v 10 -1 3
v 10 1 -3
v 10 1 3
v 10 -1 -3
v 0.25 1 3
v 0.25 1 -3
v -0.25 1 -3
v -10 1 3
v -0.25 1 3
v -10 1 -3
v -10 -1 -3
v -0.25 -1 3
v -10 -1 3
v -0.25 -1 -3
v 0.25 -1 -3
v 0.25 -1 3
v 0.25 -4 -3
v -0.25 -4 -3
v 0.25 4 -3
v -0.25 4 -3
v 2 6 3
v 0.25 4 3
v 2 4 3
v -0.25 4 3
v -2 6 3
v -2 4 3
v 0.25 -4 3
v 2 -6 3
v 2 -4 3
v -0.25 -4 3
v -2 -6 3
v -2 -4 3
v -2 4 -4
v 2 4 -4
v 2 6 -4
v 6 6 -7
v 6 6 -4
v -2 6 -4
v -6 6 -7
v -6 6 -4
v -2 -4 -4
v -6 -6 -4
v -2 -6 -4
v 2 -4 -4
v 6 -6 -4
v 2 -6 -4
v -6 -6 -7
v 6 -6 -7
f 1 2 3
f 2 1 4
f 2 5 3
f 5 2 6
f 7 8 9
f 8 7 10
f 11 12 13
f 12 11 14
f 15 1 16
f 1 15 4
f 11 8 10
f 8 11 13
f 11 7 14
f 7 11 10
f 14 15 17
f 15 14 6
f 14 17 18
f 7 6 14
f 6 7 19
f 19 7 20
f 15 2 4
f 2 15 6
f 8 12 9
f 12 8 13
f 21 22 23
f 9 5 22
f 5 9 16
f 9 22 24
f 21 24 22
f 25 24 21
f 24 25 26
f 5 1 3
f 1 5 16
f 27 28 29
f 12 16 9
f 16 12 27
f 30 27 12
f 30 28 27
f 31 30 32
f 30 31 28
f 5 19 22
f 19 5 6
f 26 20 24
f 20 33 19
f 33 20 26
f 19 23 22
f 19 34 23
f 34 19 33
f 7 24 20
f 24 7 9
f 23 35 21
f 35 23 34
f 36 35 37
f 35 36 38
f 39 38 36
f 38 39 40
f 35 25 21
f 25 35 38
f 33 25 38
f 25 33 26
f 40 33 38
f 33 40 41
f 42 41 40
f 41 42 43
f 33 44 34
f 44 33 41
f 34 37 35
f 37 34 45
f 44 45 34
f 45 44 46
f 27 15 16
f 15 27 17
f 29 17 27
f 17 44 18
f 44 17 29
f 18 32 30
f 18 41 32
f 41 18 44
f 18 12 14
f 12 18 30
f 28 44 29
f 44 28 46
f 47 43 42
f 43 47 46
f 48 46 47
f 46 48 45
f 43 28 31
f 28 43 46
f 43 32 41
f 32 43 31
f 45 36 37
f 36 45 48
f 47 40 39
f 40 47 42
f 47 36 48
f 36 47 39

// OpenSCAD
width = 6;
leverHeight = 2;
holderHeight = 3;

rotate([-90, 0, 0]){
	cube([20, 6, leverHeight], center=true);

	translate([0, 0, (leverHeight+holderHeight)/2])
		cube([0.5, width, holderHeight], center=true);
		
	translate([0, 0.5, leverHeight+holderHeight])
		cube([4, width+1, leverHeight], center=true);

	translate([0, 0, -(leverHeight+holderHeight)/2])
		cube([0.5, width, holderHeight], center=true);
		
	translate([0, 0.5, -(leverHeight+holderHeight)])
		cube([4, width+1, leverHeight], center=true);

	/*translate([0, 0.5, -3.9])	
		rotate([0, -90, 90])
			cylinder(d=8.4, h=width+1, $fn=3, center=true);*/

	translate([0, 5.5, 0])		
		cube([12, 3, 12], center=true);
}
